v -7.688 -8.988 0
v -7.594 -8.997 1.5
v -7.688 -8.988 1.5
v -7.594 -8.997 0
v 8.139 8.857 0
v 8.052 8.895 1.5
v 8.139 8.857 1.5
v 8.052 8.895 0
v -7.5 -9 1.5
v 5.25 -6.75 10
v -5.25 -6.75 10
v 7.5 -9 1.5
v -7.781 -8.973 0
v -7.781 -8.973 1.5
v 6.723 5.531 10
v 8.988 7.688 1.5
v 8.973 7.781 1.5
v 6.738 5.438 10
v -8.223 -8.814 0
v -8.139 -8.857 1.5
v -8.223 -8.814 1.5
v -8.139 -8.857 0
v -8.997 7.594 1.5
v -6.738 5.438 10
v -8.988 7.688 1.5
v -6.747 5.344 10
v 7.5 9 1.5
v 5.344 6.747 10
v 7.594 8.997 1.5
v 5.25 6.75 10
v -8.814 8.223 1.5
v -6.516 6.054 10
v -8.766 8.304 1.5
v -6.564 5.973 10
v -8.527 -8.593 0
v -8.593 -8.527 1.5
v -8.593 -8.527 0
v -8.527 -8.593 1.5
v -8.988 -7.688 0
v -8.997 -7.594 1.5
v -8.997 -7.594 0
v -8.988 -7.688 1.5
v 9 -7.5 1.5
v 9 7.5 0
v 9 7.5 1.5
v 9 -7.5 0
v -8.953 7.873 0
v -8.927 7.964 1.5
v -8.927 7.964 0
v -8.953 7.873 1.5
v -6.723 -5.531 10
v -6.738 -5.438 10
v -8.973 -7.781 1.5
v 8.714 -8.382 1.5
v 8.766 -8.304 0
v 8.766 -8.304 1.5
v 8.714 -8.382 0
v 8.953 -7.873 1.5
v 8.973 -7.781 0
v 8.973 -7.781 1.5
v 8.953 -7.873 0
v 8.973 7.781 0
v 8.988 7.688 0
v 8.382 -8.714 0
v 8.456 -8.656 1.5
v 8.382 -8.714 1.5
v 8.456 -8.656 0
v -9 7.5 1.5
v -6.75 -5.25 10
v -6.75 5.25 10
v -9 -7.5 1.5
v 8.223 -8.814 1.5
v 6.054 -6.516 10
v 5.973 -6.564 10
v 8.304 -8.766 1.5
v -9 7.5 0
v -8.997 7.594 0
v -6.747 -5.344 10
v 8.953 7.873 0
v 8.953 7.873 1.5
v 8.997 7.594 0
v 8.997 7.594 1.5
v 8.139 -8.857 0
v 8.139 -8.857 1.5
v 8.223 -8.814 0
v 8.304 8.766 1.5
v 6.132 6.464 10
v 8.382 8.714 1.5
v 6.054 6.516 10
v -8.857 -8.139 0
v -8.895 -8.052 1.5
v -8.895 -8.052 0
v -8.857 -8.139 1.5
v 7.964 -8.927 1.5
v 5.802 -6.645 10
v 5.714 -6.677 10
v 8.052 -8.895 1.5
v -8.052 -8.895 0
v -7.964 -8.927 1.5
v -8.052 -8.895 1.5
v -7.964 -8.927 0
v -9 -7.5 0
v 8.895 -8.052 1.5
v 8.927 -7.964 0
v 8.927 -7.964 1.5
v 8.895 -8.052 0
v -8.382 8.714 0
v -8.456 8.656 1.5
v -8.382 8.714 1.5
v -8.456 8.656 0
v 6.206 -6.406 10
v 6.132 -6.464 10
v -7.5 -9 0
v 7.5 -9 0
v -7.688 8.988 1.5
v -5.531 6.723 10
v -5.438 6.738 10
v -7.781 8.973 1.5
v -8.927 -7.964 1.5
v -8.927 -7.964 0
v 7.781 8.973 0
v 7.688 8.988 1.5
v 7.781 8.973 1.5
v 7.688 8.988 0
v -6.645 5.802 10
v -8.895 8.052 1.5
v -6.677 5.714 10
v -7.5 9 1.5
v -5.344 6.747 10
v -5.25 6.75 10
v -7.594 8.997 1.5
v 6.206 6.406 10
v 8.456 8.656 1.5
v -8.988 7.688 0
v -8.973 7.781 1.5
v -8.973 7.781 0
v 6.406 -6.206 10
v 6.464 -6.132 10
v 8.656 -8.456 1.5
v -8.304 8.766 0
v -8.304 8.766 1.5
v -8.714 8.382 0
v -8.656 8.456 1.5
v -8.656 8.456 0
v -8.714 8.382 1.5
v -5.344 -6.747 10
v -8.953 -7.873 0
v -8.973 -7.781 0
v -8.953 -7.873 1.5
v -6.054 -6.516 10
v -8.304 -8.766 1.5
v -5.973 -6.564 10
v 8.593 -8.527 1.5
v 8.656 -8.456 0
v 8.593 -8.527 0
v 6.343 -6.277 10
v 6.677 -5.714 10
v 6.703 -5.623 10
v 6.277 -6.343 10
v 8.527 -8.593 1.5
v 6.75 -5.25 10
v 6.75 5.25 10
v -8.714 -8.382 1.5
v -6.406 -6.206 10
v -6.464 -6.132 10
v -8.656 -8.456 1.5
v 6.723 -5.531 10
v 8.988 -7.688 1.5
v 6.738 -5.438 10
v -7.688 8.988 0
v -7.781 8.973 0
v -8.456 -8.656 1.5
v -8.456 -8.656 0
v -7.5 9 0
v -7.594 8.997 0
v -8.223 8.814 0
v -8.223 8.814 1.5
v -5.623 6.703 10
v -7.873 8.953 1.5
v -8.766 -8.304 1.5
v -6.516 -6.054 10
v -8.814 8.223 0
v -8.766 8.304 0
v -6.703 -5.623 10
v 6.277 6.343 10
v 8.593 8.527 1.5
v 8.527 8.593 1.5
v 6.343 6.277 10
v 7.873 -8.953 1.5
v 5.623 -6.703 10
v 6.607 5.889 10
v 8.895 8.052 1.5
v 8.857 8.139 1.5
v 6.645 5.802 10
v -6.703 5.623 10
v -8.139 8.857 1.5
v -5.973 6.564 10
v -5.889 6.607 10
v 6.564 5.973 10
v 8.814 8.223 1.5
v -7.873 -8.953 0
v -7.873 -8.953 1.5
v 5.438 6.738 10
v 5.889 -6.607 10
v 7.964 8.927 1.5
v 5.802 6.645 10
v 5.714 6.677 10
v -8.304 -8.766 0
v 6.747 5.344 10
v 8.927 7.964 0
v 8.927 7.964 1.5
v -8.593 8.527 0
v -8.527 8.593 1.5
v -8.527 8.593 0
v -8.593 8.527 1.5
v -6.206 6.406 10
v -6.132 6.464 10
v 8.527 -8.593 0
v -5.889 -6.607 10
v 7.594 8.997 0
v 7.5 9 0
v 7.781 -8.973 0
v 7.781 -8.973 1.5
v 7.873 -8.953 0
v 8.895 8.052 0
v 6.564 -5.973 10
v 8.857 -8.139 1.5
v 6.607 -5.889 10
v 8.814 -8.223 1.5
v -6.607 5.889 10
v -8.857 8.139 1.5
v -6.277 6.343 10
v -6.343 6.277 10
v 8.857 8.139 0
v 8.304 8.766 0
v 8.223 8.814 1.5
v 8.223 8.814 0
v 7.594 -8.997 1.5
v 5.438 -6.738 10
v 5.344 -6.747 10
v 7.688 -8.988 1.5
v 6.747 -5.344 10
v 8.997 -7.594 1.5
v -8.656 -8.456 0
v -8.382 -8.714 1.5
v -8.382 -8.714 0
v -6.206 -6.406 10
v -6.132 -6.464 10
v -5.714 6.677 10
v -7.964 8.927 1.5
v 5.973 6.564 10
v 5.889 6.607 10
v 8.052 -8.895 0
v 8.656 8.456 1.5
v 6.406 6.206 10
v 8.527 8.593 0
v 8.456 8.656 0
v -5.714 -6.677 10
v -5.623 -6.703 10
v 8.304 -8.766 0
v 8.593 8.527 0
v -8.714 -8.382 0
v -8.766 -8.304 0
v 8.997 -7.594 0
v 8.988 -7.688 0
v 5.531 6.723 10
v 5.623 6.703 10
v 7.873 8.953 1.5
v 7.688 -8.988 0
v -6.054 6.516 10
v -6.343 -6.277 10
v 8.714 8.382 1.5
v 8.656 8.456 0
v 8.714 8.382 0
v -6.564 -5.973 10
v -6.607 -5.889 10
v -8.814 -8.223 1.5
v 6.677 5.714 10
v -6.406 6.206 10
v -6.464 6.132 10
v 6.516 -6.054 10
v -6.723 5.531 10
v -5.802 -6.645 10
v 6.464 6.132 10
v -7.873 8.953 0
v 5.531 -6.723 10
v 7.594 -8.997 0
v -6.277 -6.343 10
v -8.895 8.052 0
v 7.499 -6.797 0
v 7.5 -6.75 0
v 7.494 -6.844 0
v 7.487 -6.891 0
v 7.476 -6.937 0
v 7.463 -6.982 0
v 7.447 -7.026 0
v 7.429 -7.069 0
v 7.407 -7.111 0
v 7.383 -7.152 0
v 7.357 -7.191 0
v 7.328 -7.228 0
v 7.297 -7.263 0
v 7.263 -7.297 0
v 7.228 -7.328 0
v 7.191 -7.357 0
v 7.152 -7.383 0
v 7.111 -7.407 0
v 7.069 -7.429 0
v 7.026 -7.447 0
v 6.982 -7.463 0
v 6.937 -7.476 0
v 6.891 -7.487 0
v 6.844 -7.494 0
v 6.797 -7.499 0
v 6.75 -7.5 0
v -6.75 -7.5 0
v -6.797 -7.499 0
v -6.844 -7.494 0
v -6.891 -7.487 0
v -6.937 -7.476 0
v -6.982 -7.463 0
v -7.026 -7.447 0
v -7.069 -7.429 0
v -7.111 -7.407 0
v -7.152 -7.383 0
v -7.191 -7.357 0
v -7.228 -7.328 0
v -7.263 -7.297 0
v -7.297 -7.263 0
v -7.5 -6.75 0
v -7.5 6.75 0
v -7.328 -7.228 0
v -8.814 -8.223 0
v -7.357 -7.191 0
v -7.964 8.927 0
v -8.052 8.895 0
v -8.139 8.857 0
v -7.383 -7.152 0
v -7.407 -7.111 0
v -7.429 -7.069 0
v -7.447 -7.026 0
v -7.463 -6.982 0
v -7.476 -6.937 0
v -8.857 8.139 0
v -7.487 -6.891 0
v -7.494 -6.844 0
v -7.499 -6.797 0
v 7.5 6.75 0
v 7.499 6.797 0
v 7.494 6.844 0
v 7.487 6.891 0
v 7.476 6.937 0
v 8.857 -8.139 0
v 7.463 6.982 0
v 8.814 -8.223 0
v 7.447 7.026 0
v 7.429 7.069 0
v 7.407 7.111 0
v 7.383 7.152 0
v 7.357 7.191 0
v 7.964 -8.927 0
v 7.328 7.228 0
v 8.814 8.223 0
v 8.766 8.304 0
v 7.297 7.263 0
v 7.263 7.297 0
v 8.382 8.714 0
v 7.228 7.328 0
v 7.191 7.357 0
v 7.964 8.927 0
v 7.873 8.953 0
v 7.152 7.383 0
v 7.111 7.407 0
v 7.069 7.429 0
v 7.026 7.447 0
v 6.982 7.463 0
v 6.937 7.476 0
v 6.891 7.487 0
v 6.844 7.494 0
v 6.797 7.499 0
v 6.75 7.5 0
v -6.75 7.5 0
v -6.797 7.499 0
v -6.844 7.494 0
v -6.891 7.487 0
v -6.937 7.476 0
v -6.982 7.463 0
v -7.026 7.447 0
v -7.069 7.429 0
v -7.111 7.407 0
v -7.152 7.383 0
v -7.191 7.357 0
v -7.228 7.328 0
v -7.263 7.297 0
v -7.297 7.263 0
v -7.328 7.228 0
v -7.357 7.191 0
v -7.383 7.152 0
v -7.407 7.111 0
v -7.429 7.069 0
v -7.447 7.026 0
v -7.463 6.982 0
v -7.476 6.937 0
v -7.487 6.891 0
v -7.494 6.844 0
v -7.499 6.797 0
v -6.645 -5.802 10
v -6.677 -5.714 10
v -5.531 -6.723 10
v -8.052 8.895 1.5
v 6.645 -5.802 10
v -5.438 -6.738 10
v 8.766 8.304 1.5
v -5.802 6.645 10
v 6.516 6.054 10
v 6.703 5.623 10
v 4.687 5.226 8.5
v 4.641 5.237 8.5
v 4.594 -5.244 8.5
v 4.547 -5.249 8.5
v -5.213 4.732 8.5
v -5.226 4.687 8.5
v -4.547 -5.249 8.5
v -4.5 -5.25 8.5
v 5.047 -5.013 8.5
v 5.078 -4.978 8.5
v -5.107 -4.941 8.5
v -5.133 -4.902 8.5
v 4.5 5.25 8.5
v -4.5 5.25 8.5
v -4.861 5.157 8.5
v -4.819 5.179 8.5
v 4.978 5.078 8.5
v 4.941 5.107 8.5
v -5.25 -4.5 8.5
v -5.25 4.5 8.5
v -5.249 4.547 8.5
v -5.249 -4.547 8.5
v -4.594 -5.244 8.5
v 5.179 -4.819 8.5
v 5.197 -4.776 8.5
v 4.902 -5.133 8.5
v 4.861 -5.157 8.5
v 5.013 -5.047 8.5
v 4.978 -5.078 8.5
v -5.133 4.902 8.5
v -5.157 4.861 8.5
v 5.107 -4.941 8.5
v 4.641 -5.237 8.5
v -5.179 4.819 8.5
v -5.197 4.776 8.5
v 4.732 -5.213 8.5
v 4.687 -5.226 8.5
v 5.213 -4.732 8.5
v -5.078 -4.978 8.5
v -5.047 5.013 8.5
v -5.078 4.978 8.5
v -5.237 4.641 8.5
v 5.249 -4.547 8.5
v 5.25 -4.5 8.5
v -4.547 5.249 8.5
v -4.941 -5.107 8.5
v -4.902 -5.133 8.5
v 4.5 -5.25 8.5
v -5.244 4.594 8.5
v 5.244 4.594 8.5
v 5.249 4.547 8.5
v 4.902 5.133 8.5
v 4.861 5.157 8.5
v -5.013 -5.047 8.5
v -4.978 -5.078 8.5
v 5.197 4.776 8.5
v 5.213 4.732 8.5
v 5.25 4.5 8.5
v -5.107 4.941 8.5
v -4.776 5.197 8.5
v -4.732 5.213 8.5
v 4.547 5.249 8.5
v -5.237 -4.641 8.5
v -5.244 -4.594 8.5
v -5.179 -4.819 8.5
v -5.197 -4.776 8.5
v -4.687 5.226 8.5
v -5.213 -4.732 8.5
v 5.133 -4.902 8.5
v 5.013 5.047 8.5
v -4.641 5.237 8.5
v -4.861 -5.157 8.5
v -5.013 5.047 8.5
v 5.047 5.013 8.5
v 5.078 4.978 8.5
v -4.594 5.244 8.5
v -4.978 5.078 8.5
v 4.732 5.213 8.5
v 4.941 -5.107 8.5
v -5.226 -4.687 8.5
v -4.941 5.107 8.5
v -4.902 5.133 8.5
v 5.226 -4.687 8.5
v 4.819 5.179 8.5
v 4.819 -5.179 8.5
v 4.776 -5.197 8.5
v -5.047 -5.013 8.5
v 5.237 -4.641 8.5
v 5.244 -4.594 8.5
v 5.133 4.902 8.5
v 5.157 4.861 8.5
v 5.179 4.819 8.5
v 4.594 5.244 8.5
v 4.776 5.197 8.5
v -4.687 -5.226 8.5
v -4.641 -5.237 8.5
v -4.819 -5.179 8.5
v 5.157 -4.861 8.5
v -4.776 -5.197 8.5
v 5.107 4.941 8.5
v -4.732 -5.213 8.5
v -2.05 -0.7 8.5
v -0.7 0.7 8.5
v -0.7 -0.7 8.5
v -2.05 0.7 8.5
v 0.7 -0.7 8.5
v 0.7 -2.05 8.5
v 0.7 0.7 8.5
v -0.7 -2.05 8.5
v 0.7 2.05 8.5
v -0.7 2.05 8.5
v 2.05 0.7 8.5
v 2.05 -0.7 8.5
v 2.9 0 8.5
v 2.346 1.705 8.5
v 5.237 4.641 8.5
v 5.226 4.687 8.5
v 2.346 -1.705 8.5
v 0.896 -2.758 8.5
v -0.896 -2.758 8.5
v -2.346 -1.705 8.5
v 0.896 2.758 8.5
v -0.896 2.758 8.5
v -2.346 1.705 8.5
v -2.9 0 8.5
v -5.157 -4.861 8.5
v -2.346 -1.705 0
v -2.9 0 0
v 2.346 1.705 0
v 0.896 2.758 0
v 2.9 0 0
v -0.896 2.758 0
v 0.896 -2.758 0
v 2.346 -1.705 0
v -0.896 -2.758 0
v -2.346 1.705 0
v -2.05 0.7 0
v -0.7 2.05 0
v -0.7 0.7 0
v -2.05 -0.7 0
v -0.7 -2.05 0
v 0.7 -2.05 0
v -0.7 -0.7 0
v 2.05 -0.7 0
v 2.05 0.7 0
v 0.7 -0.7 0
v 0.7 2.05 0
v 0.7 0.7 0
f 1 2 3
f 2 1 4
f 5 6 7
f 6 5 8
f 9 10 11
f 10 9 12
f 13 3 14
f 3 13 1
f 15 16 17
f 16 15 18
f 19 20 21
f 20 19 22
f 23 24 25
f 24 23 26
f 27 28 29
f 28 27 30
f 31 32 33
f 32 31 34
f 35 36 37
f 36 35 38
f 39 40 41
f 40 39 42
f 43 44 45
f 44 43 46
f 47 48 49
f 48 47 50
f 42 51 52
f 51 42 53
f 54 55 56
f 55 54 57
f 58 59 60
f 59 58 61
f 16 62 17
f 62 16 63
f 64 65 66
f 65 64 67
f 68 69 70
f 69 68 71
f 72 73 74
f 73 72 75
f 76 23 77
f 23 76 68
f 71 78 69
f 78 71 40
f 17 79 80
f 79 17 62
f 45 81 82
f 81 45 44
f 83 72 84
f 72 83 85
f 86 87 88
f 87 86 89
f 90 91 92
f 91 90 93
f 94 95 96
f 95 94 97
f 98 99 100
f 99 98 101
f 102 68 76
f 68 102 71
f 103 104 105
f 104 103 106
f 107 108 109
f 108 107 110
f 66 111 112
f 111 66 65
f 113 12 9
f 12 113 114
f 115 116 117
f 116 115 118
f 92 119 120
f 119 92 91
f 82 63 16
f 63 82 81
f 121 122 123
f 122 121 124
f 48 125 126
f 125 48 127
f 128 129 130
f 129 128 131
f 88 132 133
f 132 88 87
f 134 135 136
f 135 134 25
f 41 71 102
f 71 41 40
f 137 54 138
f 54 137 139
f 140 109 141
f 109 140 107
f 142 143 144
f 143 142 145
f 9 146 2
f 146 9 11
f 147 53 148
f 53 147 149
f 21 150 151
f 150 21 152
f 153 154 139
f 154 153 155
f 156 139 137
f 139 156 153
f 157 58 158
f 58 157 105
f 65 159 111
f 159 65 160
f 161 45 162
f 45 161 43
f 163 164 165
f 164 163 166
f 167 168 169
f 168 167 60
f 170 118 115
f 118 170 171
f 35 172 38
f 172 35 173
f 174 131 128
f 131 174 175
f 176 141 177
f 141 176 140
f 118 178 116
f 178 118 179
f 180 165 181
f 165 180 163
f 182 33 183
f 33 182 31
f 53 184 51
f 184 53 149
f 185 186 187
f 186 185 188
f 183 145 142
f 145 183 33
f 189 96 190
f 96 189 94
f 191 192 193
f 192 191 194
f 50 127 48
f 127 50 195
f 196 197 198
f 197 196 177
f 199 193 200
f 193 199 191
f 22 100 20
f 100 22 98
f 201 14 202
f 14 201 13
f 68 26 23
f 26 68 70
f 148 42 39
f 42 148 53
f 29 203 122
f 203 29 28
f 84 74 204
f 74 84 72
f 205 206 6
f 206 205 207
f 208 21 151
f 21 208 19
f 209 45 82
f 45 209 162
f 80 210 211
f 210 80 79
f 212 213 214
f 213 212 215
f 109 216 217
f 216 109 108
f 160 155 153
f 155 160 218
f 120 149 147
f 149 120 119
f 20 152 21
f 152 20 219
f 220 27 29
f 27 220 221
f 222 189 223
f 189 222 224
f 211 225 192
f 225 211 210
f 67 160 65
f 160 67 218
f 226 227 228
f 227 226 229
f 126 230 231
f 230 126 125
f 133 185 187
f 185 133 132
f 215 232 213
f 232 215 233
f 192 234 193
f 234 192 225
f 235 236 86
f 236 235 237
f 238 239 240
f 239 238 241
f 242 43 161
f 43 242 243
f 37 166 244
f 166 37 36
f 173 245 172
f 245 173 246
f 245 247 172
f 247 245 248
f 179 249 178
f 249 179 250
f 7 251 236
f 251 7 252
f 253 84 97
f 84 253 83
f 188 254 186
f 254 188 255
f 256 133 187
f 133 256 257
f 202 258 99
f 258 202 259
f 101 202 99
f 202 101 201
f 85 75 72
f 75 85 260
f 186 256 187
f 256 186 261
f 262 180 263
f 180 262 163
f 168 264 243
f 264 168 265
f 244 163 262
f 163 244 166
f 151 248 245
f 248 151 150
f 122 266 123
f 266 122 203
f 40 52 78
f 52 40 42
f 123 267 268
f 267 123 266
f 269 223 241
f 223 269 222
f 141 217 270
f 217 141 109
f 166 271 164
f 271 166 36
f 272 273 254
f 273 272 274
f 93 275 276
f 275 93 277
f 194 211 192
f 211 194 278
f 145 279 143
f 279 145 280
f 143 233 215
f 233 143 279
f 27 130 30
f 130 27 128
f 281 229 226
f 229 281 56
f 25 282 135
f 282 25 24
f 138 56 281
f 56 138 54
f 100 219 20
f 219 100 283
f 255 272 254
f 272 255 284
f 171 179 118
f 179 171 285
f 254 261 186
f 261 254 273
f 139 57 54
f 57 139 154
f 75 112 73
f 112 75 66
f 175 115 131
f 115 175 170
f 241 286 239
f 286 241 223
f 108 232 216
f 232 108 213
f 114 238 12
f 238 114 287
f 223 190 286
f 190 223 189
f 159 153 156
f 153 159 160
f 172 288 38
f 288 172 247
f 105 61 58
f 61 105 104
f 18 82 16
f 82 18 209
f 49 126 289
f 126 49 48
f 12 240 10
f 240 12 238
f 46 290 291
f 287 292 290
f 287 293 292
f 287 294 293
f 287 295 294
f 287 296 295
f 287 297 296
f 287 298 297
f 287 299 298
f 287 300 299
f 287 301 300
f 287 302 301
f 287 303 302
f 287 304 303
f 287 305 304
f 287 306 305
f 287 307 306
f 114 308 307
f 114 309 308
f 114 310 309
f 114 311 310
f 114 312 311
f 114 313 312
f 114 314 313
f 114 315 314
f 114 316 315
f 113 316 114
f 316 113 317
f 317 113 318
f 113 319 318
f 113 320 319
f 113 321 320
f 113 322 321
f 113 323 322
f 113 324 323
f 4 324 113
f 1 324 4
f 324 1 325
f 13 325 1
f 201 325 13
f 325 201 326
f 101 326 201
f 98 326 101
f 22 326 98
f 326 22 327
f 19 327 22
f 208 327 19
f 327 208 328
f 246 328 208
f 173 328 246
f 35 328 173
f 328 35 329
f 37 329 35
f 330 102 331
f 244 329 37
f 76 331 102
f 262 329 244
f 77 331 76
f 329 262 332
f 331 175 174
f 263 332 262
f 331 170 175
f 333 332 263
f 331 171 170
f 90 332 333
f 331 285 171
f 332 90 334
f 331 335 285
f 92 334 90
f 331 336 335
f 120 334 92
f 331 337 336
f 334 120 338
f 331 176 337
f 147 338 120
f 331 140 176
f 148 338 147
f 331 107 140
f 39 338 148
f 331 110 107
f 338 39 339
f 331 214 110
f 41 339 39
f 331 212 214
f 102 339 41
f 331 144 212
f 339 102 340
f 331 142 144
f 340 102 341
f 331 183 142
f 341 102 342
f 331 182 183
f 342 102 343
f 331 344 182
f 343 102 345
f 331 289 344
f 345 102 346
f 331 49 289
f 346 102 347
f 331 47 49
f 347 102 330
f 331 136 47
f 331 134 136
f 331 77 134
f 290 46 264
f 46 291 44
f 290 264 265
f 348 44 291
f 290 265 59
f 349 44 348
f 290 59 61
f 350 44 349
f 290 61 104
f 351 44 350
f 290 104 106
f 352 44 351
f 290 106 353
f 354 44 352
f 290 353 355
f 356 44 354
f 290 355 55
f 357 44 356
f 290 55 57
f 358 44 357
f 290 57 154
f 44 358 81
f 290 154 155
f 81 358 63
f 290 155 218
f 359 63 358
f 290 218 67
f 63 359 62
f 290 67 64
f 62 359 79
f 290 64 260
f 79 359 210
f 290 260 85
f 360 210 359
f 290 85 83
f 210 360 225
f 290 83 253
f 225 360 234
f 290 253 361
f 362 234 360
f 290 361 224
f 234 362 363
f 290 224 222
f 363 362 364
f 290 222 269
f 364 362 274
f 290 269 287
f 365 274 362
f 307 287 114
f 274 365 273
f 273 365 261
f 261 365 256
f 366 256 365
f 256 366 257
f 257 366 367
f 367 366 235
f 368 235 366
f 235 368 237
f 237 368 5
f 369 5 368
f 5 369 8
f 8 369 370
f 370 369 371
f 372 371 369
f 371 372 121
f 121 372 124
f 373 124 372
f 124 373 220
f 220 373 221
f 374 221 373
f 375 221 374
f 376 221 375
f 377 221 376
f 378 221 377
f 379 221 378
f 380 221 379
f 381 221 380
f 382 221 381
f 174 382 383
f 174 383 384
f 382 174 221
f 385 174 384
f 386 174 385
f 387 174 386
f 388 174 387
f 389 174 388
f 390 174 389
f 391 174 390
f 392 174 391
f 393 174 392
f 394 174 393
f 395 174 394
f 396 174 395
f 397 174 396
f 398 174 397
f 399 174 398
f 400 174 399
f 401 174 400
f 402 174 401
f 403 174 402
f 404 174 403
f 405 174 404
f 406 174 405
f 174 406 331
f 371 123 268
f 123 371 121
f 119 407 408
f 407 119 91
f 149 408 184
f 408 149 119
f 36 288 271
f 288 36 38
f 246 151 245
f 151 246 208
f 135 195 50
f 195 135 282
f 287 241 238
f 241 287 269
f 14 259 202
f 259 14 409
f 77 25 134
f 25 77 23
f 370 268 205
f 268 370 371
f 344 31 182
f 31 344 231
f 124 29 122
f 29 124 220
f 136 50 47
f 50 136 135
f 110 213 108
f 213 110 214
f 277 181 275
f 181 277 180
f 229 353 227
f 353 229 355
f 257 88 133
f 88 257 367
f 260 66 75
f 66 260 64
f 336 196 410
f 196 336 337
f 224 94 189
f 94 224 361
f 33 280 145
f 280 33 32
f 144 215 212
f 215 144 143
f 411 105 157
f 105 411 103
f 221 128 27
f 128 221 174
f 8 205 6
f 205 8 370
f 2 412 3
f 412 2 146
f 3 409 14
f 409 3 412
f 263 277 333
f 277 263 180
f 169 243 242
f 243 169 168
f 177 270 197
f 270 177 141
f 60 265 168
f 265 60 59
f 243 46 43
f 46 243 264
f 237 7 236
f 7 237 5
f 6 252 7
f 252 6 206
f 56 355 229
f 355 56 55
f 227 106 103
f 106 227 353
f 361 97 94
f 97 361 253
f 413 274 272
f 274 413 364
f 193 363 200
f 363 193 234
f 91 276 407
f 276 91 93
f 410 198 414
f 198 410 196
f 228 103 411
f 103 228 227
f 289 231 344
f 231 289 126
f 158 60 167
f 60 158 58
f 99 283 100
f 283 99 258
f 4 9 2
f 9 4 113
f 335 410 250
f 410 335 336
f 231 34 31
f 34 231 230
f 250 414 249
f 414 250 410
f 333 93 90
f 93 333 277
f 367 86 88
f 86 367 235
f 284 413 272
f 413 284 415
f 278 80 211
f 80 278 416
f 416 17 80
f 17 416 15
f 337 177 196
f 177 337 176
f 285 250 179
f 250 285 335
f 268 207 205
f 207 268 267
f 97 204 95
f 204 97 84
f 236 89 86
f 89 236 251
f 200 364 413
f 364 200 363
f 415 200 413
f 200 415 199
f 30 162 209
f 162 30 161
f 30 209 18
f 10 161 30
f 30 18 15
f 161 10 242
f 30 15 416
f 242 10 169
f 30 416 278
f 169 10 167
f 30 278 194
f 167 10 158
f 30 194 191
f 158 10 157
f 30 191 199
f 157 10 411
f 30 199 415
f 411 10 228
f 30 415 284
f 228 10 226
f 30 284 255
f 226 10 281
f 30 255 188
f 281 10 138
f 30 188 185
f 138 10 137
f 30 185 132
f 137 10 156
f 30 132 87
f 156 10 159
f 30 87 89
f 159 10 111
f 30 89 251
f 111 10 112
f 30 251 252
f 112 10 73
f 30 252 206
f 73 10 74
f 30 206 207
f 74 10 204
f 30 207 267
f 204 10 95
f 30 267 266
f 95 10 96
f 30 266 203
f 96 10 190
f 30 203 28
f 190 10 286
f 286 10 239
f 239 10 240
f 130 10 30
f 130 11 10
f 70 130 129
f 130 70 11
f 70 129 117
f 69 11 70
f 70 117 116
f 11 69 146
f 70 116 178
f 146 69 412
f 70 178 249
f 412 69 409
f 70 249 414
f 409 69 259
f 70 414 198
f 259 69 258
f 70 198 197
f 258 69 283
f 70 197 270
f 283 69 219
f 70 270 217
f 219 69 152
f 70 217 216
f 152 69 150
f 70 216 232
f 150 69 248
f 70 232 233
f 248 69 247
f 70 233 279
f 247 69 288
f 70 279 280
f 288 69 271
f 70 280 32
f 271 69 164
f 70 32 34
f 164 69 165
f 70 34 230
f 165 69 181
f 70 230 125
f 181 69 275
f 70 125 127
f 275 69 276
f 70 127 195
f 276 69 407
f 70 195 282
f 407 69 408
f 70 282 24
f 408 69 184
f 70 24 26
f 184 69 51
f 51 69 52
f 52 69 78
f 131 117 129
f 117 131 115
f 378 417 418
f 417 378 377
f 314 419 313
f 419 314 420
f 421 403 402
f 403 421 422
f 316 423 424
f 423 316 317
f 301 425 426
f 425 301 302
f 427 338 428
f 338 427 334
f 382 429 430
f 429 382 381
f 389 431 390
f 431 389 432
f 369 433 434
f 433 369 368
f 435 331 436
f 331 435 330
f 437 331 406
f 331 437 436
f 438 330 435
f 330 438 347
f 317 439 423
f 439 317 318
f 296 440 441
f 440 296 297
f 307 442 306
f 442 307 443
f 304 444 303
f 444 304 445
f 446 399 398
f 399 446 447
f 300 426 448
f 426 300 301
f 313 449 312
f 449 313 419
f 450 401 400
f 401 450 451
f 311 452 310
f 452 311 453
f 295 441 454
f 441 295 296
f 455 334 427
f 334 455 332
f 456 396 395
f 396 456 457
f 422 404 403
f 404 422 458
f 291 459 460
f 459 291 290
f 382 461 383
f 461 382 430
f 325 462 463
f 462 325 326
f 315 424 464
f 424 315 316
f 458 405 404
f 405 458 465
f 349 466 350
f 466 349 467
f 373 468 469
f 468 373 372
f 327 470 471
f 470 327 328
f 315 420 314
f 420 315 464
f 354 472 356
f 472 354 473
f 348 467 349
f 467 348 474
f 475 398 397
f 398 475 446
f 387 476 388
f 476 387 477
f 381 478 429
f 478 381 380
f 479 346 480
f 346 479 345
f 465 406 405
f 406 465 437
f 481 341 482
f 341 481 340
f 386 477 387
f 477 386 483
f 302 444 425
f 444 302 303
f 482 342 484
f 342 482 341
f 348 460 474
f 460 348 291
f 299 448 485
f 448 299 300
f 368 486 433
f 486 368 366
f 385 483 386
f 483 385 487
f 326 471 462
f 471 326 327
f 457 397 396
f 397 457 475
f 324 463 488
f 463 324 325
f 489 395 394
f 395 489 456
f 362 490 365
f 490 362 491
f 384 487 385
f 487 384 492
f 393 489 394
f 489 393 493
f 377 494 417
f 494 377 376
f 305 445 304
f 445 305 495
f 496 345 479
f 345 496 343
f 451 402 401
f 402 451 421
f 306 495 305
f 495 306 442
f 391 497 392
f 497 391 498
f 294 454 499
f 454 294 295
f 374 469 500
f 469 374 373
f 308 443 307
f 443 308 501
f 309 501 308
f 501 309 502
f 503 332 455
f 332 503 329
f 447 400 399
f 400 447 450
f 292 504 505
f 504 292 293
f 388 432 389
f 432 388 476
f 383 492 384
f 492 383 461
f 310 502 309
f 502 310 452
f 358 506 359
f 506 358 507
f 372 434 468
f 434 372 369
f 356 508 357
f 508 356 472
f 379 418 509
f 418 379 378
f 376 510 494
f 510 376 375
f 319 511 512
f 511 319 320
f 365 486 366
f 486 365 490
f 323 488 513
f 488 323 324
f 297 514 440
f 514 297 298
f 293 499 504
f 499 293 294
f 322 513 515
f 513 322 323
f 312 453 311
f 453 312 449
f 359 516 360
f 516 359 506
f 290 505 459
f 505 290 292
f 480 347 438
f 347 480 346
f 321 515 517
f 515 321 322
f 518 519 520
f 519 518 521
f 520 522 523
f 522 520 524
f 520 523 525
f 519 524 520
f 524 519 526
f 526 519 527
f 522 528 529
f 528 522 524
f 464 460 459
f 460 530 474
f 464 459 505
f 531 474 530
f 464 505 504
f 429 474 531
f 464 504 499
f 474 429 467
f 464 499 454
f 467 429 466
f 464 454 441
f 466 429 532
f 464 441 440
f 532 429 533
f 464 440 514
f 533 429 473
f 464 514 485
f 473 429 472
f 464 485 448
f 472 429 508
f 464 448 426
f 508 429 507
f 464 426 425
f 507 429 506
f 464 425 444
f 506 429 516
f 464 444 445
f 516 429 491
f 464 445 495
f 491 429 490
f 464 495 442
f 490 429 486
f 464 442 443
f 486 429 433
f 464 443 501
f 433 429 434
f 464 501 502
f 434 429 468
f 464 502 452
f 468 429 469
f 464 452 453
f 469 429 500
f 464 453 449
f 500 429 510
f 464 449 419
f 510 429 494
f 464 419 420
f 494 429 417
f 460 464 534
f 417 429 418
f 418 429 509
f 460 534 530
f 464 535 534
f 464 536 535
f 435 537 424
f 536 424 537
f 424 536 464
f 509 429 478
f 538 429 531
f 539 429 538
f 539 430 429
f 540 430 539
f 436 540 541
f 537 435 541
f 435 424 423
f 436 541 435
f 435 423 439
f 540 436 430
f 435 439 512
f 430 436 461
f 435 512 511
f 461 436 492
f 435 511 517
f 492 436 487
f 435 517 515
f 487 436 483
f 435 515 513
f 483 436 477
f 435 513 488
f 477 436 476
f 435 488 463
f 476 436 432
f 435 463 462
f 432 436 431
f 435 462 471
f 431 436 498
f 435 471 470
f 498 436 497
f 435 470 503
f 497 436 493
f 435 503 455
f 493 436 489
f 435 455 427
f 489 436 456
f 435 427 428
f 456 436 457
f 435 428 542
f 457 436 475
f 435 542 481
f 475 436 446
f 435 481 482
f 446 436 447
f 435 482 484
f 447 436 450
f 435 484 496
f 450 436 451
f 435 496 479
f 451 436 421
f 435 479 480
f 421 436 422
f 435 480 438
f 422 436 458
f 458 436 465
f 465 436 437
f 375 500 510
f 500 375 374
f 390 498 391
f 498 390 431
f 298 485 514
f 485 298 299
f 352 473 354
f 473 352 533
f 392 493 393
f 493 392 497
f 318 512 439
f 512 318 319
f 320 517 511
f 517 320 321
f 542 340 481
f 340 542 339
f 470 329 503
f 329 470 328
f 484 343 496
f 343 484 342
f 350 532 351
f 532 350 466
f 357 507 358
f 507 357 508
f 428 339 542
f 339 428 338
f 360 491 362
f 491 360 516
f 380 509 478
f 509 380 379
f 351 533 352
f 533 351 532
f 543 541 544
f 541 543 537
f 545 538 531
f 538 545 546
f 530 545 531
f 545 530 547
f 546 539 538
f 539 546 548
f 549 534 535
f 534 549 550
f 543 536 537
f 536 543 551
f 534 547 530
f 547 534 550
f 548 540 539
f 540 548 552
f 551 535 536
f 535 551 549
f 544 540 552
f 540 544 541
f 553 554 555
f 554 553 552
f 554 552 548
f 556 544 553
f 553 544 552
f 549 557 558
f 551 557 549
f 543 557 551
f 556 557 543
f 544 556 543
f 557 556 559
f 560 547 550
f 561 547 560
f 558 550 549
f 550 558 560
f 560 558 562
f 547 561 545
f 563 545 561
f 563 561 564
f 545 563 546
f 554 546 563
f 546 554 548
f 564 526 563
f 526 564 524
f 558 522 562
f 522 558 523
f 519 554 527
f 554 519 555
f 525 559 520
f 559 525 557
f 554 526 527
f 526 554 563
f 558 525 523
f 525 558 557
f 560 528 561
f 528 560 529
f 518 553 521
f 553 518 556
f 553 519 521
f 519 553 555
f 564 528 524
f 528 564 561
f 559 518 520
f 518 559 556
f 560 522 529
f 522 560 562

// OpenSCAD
// Keycap dimensions
base_platform = true;     // Base platform on/off
wide_keycap = false;      // true = 20mm wide, false = 13.5mm wide

top_depth = 13.5;         // Top surface depth
base_extension = 4.5;     // How much wider at bottom
total_height = 10.0;      // Total keycap height
wall_thickness = 1.5;     // Wall thickness
corner_radius = 1.5;      // Corner radius

top_width = wide_keycap ? 20 : 13.5;  // Top surface width
bottom_width = top_width + base_extension;   // Bottom width
bottom_depth = top_depth + base_extension;   // Bottom depth

// Connector dimensions
connector_height = 8.5;   // Connector height
connector_diameter = 5.8; // Connector diameter
plus_width = 1.4;        // Plus cut width - before: 1.35
plus_thickness = 1.4;    // Plus cut thickness - before: 1.35
plus_length = 4.1;        // Plus cut length


// Creates Cherry MX style connector with plus cutouts
// Uses default $fn (no override)
module connector() {
    // $fn = 100;
    union() {
        difference() {
            cylinder(h = connector_height, d = connector_diameter);
            
            translate([-plus_width/2, -plus_length/2, -0.1])
            cube([plus_width, plus_length, connector_height + 0.2]);
            
            translate([-plus_length/2, -plus_thickness/2, -0.1])
            cube([plus_length, plus_thickness, connector_height + 0.2]);
        }
    }
}

// Creates rounded rectangles using 4 cylinders
module rounded_cube(width, depth, height, radius) {
    $fn = 100;  // High resolution for rounded corners
    hull() {
        translate([-(width/2-radius), -(depth/2-radius), 0])
            cylinder(r=radius, h=height, center=true);
        translate([(width/2-radius), -(depth/2-radius), 0])
            cylinder(r=radius, h=height, center=true);
        translate([-(width/2-radius), (depth/2-radius), 0])
            cylinder(r=radius, h=height, center=true);
        translate([(width/2-radius), (depth/2-radius), 0])
            cylinder(r=radius, h=height, center=true);
    }
}

// Creates the outer shell of the keycap
module keycap_outer() {
    hull() {
        if (base_platform) {
            translate([0, 0, wall_thickness/2])
                rounded_cube(bottom_width, bottom_depth, wall_thickness, corner_radius);
        } else {
            translate([0, 0, 0.1])
                rounded_cube(bottom_width, bottom_depth, 0.2, corner_radius);
        }
        
        translate([0, 0, total_height - wall_thickness/2])
            rounded_cube(top_width, top_depth, wall_thickness, corner_radius);
    }
}

// Creates the inner hollow space of the keycap
module keycap_inner() {
    hull() {
        // Open bottom
        translate([0, 0, -1])
            rounded_cube(bottom_width - 2*wall_thickness, 
                        bottom_depth - 2*wall_thickness, 
                        2, corner_radius/2);
        
        translate([0, 0, total_height - wall_thickness - 0.1])
            rounded_cube(top_width - 2*wall_thickness, 
                        top_depth - 2*wall_thickness, 
                        0.2, corner_radius/2);
    }
}

// Final keycap assembly
union() {
    difference() {
        keycap_outer();
        keycap_inner();
    }
    
    // Connector hangs from ceiling
    keycap_inside_top = total_height - wall_thickness;
    translate([0, 0, keycap_inside_top - connector_height])
        connector();
}
